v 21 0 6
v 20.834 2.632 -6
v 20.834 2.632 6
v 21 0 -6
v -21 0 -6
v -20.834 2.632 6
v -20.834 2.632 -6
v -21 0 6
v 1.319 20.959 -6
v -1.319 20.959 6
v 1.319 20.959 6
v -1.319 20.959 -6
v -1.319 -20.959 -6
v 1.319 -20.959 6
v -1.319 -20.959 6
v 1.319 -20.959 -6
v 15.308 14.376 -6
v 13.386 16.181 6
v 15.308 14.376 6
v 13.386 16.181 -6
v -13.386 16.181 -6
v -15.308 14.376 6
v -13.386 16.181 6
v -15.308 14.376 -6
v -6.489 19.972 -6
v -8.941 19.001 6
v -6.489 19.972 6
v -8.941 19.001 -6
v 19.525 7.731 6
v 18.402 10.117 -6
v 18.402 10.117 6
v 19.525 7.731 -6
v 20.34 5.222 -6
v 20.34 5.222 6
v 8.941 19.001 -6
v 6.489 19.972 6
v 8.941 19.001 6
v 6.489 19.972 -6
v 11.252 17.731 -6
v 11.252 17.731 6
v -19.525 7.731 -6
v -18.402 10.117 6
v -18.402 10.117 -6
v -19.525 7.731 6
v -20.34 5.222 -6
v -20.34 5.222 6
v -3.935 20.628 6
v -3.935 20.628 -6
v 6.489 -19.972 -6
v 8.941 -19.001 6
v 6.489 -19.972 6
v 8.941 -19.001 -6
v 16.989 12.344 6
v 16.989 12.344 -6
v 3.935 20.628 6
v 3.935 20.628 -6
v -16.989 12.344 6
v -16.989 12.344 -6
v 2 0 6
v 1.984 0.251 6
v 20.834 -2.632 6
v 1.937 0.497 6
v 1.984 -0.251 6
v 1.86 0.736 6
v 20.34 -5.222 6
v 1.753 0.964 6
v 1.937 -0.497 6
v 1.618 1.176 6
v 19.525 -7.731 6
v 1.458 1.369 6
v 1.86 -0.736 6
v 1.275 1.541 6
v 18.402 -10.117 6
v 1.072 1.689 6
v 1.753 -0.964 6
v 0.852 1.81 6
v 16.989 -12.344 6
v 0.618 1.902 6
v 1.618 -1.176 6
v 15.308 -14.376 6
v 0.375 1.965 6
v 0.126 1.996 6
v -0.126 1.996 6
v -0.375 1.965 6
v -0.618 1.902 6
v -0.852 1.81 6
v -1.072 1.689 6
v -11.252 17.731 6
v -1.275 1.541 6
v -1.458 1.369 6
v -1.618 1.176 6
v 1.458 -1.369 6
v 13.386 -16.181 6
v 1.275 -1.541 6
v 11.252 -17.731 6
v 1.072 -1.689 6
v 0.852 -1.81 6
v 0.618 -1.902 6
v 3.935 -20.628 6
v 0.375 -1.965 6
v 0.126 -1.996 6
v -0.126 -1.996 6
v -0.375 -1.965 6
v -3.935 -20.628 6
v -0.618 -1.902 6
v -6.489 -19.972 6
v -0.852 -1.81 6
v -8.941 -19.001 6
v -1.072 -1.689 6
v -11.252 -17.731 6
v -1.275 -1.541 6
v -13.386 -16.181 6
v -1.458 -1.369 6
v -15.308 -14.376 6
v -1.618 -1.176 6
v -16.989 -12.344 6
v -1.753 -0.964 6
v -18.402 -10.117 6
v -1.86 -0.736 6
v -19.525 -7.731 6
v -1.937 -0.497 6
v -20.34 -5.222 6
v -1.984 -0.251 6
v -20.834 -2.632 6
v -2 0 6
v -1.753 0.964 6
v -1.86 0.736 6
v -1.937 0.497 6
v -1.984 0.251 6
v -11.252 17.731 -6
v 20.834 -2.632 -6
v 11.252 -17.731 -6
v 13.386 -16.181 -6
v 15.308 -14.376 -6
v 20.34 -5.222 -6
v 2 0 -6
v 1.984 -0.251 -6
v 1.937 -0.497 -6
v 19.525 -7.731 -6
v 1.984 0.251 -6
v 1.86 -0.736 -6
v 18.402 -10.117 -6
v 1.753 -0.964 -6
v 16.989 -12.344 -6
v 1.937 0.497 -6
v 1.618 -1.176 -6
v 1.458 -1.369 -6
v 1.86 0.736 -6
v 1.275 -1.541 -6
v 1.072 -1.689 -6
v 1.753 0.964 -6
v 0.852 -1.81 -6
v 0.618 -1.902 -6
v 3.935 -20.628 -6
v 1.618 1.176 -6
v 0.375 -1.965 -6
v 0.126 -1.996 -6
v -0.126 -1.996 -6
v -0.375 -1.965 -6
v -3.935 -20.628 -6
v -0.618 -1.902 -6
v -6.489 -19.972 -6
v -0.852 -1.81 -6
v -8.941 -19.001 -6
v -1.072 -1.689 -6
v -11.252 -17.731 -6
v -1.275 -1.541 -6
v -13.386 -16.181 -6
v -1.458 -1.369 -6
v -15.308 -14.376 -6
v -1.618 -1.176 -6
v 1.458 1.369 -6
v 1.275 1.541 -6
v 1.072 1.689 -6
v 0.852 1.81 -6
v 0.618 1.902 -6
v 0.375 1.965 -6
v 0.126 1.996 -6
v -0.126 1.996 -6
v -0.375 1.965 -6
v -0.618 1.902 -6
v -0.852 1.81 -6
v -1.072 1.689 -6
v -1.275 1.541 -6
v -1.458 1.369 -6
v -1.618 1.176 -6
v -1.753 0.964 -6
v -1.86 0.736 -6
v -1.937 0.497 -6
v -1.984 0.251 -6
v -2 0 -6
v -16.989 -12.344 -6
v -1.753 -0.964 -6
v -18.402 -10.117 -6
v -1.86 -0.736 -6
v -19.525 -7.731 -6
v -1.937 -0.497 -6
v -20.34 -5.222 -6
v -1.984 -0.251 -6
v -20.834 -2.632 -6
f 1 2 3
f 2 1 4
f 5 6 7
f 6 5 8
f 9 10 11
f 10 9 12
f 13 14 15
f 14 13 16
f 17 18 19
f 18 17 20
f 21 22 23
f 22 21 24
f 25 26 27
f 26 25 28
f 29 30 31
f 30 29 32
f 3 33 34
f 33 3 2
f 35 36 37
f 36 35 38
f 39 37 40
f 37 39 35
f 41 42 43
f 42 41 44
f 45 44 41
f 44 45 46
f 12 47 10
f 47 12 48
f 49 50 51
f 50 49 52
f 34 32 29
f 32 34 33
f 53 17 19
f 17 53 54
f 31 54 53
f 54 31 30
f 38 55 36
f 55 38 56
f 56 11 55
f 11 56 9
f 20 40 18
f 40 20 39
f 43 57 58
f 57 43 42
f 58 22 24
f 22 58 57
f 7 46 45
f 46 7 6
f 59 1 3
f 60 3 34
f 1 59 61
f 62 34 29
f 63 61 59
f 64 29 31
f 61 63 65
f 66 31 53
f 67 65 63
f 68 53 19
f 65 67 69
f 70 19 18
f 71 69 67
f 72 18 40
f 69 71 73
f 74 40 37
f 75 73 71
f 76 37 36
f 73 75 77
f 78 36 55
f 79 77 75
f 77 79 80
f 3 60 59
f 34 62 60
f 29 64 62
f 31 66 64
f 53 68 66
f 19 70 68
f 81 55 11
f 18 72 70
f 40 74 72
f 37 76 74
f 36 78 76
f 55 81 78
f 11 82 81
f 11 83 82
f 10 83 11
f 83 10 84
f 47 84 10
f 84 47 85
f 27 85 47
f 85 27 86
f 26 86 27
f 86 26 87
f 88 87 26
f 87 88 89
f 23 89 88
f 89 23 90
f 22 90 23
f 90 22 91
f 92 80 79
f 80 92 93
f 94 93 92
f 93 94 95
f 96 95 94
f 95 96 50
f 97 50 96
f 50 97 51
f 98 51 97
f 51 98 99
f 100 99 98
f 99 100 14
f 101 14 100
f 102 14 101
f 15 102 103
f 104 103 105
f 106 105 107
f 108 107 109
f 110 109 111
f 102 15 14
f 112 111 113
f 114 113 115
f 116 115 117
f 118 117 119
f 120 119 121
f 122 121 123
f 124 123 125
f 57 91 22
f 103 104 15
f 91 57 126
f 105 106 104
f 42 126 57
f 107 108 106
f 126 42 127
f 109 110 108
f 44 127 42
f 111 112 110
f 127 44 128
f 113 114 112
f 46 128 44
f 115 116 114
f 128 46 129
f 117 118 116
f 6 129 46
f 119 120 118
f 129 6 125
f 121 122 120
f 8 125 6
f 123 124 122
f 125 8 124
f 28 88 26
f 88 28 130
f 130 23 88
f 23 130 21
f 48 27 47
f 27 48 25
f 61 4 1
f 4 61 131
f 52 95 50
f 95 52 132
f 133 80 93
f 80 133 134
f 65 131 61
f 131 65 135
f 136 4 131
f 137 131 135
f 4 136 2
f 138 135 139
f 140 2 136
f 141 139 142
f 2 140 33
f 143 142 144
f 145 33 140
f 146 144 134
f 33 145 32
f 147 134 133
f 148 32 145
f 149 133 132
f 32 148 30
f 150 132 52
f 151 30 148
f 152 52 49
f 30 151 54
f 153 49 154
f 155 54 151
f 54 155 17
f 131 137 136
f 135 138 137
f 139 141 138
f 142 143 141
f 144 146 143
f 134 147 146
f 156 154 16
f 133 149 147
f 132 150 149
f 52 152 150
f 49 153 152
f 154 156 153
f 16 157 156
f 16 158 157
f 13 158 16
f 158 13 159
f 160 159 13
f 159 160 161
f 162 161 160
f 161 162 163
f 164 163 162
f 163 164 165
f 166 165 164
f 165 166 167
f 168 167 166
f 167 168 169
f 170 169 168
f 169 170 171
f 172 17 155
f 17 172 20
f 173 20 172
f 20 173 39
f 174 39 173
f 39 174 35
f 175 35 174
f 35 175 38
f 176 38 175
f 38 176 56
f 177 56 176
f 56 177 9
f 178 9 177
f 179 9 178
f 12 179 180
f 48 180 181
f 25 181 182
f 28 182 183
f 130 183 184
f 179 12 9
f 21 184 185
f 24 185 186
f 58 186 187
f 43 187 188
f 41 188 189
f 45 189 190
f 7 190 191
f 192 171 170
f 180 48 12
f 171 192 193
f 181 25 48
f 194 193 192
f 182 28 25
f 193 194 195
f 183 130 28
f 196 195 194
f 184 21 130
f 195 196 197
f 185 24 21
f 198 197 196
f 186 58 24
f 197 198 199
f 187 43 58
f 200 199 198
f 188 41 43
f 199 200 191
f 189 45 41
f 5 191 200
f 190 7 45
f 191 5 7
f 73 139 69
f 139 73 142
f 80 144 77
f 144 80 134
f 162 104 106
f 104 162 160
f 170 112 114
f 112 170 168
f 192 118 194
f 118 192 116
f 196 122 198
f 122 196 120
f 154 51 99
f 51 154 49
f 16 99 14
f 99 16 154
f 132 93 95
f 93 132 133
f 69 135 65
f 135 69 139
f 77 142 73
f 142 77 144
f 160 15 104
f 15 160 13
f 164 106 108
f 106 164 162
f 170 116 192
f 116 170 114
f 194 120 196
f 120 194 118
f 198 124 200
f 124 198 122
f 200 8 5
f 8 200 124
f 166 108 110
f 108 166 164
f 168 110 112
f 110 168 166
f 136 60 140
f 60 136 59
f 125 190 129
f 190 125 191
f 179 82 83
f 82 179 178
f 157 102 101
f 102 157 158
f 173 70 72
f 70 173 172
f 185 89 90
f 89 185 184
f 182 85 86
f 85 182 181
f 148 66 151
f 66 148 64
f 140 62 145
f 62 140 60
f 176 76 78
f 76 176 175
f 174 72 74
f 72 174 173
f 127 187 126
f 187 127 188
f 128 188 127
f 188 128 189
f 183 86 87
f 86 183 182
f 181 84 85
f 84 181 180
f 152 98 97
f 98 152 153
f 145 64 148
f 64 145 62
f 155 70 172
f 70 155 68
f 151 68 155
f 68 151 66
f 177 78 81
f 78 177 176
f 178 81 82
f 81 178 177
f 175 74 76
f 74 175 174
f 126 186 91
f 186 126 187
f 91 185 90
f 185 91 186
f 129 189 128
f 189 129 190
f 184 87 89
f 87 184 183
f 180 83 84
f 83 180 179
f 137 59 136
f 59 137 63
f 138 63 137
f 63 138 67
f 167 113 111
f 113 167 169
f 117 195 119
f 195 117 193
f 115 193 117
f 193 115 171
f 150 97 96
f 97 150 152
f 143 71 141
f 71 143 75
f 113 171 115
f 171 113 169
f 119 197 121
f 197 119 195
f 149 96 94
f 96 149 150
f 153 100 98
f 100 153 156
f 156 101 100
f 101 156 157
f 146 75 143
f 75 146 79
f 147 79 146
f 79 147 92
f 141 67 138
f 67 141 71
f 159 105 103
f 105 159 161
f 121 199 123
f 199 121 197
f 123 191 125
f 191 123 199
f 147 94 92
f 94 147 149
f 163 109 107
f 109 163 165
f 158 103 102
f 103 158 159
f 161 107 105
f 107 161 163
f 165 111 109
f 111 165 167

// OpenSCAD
$fn = 50;


difference() {
	union() {
		translate(v = [0, 0, -6.0000000000]) {
			cylinder(h = 12, r = 21.0000000000);
		}
	}
	union() {
		translate(v = [0, 0, -100.0000000000]) {
			cylinder(h = 200, r = 2);
		}
	}
}
